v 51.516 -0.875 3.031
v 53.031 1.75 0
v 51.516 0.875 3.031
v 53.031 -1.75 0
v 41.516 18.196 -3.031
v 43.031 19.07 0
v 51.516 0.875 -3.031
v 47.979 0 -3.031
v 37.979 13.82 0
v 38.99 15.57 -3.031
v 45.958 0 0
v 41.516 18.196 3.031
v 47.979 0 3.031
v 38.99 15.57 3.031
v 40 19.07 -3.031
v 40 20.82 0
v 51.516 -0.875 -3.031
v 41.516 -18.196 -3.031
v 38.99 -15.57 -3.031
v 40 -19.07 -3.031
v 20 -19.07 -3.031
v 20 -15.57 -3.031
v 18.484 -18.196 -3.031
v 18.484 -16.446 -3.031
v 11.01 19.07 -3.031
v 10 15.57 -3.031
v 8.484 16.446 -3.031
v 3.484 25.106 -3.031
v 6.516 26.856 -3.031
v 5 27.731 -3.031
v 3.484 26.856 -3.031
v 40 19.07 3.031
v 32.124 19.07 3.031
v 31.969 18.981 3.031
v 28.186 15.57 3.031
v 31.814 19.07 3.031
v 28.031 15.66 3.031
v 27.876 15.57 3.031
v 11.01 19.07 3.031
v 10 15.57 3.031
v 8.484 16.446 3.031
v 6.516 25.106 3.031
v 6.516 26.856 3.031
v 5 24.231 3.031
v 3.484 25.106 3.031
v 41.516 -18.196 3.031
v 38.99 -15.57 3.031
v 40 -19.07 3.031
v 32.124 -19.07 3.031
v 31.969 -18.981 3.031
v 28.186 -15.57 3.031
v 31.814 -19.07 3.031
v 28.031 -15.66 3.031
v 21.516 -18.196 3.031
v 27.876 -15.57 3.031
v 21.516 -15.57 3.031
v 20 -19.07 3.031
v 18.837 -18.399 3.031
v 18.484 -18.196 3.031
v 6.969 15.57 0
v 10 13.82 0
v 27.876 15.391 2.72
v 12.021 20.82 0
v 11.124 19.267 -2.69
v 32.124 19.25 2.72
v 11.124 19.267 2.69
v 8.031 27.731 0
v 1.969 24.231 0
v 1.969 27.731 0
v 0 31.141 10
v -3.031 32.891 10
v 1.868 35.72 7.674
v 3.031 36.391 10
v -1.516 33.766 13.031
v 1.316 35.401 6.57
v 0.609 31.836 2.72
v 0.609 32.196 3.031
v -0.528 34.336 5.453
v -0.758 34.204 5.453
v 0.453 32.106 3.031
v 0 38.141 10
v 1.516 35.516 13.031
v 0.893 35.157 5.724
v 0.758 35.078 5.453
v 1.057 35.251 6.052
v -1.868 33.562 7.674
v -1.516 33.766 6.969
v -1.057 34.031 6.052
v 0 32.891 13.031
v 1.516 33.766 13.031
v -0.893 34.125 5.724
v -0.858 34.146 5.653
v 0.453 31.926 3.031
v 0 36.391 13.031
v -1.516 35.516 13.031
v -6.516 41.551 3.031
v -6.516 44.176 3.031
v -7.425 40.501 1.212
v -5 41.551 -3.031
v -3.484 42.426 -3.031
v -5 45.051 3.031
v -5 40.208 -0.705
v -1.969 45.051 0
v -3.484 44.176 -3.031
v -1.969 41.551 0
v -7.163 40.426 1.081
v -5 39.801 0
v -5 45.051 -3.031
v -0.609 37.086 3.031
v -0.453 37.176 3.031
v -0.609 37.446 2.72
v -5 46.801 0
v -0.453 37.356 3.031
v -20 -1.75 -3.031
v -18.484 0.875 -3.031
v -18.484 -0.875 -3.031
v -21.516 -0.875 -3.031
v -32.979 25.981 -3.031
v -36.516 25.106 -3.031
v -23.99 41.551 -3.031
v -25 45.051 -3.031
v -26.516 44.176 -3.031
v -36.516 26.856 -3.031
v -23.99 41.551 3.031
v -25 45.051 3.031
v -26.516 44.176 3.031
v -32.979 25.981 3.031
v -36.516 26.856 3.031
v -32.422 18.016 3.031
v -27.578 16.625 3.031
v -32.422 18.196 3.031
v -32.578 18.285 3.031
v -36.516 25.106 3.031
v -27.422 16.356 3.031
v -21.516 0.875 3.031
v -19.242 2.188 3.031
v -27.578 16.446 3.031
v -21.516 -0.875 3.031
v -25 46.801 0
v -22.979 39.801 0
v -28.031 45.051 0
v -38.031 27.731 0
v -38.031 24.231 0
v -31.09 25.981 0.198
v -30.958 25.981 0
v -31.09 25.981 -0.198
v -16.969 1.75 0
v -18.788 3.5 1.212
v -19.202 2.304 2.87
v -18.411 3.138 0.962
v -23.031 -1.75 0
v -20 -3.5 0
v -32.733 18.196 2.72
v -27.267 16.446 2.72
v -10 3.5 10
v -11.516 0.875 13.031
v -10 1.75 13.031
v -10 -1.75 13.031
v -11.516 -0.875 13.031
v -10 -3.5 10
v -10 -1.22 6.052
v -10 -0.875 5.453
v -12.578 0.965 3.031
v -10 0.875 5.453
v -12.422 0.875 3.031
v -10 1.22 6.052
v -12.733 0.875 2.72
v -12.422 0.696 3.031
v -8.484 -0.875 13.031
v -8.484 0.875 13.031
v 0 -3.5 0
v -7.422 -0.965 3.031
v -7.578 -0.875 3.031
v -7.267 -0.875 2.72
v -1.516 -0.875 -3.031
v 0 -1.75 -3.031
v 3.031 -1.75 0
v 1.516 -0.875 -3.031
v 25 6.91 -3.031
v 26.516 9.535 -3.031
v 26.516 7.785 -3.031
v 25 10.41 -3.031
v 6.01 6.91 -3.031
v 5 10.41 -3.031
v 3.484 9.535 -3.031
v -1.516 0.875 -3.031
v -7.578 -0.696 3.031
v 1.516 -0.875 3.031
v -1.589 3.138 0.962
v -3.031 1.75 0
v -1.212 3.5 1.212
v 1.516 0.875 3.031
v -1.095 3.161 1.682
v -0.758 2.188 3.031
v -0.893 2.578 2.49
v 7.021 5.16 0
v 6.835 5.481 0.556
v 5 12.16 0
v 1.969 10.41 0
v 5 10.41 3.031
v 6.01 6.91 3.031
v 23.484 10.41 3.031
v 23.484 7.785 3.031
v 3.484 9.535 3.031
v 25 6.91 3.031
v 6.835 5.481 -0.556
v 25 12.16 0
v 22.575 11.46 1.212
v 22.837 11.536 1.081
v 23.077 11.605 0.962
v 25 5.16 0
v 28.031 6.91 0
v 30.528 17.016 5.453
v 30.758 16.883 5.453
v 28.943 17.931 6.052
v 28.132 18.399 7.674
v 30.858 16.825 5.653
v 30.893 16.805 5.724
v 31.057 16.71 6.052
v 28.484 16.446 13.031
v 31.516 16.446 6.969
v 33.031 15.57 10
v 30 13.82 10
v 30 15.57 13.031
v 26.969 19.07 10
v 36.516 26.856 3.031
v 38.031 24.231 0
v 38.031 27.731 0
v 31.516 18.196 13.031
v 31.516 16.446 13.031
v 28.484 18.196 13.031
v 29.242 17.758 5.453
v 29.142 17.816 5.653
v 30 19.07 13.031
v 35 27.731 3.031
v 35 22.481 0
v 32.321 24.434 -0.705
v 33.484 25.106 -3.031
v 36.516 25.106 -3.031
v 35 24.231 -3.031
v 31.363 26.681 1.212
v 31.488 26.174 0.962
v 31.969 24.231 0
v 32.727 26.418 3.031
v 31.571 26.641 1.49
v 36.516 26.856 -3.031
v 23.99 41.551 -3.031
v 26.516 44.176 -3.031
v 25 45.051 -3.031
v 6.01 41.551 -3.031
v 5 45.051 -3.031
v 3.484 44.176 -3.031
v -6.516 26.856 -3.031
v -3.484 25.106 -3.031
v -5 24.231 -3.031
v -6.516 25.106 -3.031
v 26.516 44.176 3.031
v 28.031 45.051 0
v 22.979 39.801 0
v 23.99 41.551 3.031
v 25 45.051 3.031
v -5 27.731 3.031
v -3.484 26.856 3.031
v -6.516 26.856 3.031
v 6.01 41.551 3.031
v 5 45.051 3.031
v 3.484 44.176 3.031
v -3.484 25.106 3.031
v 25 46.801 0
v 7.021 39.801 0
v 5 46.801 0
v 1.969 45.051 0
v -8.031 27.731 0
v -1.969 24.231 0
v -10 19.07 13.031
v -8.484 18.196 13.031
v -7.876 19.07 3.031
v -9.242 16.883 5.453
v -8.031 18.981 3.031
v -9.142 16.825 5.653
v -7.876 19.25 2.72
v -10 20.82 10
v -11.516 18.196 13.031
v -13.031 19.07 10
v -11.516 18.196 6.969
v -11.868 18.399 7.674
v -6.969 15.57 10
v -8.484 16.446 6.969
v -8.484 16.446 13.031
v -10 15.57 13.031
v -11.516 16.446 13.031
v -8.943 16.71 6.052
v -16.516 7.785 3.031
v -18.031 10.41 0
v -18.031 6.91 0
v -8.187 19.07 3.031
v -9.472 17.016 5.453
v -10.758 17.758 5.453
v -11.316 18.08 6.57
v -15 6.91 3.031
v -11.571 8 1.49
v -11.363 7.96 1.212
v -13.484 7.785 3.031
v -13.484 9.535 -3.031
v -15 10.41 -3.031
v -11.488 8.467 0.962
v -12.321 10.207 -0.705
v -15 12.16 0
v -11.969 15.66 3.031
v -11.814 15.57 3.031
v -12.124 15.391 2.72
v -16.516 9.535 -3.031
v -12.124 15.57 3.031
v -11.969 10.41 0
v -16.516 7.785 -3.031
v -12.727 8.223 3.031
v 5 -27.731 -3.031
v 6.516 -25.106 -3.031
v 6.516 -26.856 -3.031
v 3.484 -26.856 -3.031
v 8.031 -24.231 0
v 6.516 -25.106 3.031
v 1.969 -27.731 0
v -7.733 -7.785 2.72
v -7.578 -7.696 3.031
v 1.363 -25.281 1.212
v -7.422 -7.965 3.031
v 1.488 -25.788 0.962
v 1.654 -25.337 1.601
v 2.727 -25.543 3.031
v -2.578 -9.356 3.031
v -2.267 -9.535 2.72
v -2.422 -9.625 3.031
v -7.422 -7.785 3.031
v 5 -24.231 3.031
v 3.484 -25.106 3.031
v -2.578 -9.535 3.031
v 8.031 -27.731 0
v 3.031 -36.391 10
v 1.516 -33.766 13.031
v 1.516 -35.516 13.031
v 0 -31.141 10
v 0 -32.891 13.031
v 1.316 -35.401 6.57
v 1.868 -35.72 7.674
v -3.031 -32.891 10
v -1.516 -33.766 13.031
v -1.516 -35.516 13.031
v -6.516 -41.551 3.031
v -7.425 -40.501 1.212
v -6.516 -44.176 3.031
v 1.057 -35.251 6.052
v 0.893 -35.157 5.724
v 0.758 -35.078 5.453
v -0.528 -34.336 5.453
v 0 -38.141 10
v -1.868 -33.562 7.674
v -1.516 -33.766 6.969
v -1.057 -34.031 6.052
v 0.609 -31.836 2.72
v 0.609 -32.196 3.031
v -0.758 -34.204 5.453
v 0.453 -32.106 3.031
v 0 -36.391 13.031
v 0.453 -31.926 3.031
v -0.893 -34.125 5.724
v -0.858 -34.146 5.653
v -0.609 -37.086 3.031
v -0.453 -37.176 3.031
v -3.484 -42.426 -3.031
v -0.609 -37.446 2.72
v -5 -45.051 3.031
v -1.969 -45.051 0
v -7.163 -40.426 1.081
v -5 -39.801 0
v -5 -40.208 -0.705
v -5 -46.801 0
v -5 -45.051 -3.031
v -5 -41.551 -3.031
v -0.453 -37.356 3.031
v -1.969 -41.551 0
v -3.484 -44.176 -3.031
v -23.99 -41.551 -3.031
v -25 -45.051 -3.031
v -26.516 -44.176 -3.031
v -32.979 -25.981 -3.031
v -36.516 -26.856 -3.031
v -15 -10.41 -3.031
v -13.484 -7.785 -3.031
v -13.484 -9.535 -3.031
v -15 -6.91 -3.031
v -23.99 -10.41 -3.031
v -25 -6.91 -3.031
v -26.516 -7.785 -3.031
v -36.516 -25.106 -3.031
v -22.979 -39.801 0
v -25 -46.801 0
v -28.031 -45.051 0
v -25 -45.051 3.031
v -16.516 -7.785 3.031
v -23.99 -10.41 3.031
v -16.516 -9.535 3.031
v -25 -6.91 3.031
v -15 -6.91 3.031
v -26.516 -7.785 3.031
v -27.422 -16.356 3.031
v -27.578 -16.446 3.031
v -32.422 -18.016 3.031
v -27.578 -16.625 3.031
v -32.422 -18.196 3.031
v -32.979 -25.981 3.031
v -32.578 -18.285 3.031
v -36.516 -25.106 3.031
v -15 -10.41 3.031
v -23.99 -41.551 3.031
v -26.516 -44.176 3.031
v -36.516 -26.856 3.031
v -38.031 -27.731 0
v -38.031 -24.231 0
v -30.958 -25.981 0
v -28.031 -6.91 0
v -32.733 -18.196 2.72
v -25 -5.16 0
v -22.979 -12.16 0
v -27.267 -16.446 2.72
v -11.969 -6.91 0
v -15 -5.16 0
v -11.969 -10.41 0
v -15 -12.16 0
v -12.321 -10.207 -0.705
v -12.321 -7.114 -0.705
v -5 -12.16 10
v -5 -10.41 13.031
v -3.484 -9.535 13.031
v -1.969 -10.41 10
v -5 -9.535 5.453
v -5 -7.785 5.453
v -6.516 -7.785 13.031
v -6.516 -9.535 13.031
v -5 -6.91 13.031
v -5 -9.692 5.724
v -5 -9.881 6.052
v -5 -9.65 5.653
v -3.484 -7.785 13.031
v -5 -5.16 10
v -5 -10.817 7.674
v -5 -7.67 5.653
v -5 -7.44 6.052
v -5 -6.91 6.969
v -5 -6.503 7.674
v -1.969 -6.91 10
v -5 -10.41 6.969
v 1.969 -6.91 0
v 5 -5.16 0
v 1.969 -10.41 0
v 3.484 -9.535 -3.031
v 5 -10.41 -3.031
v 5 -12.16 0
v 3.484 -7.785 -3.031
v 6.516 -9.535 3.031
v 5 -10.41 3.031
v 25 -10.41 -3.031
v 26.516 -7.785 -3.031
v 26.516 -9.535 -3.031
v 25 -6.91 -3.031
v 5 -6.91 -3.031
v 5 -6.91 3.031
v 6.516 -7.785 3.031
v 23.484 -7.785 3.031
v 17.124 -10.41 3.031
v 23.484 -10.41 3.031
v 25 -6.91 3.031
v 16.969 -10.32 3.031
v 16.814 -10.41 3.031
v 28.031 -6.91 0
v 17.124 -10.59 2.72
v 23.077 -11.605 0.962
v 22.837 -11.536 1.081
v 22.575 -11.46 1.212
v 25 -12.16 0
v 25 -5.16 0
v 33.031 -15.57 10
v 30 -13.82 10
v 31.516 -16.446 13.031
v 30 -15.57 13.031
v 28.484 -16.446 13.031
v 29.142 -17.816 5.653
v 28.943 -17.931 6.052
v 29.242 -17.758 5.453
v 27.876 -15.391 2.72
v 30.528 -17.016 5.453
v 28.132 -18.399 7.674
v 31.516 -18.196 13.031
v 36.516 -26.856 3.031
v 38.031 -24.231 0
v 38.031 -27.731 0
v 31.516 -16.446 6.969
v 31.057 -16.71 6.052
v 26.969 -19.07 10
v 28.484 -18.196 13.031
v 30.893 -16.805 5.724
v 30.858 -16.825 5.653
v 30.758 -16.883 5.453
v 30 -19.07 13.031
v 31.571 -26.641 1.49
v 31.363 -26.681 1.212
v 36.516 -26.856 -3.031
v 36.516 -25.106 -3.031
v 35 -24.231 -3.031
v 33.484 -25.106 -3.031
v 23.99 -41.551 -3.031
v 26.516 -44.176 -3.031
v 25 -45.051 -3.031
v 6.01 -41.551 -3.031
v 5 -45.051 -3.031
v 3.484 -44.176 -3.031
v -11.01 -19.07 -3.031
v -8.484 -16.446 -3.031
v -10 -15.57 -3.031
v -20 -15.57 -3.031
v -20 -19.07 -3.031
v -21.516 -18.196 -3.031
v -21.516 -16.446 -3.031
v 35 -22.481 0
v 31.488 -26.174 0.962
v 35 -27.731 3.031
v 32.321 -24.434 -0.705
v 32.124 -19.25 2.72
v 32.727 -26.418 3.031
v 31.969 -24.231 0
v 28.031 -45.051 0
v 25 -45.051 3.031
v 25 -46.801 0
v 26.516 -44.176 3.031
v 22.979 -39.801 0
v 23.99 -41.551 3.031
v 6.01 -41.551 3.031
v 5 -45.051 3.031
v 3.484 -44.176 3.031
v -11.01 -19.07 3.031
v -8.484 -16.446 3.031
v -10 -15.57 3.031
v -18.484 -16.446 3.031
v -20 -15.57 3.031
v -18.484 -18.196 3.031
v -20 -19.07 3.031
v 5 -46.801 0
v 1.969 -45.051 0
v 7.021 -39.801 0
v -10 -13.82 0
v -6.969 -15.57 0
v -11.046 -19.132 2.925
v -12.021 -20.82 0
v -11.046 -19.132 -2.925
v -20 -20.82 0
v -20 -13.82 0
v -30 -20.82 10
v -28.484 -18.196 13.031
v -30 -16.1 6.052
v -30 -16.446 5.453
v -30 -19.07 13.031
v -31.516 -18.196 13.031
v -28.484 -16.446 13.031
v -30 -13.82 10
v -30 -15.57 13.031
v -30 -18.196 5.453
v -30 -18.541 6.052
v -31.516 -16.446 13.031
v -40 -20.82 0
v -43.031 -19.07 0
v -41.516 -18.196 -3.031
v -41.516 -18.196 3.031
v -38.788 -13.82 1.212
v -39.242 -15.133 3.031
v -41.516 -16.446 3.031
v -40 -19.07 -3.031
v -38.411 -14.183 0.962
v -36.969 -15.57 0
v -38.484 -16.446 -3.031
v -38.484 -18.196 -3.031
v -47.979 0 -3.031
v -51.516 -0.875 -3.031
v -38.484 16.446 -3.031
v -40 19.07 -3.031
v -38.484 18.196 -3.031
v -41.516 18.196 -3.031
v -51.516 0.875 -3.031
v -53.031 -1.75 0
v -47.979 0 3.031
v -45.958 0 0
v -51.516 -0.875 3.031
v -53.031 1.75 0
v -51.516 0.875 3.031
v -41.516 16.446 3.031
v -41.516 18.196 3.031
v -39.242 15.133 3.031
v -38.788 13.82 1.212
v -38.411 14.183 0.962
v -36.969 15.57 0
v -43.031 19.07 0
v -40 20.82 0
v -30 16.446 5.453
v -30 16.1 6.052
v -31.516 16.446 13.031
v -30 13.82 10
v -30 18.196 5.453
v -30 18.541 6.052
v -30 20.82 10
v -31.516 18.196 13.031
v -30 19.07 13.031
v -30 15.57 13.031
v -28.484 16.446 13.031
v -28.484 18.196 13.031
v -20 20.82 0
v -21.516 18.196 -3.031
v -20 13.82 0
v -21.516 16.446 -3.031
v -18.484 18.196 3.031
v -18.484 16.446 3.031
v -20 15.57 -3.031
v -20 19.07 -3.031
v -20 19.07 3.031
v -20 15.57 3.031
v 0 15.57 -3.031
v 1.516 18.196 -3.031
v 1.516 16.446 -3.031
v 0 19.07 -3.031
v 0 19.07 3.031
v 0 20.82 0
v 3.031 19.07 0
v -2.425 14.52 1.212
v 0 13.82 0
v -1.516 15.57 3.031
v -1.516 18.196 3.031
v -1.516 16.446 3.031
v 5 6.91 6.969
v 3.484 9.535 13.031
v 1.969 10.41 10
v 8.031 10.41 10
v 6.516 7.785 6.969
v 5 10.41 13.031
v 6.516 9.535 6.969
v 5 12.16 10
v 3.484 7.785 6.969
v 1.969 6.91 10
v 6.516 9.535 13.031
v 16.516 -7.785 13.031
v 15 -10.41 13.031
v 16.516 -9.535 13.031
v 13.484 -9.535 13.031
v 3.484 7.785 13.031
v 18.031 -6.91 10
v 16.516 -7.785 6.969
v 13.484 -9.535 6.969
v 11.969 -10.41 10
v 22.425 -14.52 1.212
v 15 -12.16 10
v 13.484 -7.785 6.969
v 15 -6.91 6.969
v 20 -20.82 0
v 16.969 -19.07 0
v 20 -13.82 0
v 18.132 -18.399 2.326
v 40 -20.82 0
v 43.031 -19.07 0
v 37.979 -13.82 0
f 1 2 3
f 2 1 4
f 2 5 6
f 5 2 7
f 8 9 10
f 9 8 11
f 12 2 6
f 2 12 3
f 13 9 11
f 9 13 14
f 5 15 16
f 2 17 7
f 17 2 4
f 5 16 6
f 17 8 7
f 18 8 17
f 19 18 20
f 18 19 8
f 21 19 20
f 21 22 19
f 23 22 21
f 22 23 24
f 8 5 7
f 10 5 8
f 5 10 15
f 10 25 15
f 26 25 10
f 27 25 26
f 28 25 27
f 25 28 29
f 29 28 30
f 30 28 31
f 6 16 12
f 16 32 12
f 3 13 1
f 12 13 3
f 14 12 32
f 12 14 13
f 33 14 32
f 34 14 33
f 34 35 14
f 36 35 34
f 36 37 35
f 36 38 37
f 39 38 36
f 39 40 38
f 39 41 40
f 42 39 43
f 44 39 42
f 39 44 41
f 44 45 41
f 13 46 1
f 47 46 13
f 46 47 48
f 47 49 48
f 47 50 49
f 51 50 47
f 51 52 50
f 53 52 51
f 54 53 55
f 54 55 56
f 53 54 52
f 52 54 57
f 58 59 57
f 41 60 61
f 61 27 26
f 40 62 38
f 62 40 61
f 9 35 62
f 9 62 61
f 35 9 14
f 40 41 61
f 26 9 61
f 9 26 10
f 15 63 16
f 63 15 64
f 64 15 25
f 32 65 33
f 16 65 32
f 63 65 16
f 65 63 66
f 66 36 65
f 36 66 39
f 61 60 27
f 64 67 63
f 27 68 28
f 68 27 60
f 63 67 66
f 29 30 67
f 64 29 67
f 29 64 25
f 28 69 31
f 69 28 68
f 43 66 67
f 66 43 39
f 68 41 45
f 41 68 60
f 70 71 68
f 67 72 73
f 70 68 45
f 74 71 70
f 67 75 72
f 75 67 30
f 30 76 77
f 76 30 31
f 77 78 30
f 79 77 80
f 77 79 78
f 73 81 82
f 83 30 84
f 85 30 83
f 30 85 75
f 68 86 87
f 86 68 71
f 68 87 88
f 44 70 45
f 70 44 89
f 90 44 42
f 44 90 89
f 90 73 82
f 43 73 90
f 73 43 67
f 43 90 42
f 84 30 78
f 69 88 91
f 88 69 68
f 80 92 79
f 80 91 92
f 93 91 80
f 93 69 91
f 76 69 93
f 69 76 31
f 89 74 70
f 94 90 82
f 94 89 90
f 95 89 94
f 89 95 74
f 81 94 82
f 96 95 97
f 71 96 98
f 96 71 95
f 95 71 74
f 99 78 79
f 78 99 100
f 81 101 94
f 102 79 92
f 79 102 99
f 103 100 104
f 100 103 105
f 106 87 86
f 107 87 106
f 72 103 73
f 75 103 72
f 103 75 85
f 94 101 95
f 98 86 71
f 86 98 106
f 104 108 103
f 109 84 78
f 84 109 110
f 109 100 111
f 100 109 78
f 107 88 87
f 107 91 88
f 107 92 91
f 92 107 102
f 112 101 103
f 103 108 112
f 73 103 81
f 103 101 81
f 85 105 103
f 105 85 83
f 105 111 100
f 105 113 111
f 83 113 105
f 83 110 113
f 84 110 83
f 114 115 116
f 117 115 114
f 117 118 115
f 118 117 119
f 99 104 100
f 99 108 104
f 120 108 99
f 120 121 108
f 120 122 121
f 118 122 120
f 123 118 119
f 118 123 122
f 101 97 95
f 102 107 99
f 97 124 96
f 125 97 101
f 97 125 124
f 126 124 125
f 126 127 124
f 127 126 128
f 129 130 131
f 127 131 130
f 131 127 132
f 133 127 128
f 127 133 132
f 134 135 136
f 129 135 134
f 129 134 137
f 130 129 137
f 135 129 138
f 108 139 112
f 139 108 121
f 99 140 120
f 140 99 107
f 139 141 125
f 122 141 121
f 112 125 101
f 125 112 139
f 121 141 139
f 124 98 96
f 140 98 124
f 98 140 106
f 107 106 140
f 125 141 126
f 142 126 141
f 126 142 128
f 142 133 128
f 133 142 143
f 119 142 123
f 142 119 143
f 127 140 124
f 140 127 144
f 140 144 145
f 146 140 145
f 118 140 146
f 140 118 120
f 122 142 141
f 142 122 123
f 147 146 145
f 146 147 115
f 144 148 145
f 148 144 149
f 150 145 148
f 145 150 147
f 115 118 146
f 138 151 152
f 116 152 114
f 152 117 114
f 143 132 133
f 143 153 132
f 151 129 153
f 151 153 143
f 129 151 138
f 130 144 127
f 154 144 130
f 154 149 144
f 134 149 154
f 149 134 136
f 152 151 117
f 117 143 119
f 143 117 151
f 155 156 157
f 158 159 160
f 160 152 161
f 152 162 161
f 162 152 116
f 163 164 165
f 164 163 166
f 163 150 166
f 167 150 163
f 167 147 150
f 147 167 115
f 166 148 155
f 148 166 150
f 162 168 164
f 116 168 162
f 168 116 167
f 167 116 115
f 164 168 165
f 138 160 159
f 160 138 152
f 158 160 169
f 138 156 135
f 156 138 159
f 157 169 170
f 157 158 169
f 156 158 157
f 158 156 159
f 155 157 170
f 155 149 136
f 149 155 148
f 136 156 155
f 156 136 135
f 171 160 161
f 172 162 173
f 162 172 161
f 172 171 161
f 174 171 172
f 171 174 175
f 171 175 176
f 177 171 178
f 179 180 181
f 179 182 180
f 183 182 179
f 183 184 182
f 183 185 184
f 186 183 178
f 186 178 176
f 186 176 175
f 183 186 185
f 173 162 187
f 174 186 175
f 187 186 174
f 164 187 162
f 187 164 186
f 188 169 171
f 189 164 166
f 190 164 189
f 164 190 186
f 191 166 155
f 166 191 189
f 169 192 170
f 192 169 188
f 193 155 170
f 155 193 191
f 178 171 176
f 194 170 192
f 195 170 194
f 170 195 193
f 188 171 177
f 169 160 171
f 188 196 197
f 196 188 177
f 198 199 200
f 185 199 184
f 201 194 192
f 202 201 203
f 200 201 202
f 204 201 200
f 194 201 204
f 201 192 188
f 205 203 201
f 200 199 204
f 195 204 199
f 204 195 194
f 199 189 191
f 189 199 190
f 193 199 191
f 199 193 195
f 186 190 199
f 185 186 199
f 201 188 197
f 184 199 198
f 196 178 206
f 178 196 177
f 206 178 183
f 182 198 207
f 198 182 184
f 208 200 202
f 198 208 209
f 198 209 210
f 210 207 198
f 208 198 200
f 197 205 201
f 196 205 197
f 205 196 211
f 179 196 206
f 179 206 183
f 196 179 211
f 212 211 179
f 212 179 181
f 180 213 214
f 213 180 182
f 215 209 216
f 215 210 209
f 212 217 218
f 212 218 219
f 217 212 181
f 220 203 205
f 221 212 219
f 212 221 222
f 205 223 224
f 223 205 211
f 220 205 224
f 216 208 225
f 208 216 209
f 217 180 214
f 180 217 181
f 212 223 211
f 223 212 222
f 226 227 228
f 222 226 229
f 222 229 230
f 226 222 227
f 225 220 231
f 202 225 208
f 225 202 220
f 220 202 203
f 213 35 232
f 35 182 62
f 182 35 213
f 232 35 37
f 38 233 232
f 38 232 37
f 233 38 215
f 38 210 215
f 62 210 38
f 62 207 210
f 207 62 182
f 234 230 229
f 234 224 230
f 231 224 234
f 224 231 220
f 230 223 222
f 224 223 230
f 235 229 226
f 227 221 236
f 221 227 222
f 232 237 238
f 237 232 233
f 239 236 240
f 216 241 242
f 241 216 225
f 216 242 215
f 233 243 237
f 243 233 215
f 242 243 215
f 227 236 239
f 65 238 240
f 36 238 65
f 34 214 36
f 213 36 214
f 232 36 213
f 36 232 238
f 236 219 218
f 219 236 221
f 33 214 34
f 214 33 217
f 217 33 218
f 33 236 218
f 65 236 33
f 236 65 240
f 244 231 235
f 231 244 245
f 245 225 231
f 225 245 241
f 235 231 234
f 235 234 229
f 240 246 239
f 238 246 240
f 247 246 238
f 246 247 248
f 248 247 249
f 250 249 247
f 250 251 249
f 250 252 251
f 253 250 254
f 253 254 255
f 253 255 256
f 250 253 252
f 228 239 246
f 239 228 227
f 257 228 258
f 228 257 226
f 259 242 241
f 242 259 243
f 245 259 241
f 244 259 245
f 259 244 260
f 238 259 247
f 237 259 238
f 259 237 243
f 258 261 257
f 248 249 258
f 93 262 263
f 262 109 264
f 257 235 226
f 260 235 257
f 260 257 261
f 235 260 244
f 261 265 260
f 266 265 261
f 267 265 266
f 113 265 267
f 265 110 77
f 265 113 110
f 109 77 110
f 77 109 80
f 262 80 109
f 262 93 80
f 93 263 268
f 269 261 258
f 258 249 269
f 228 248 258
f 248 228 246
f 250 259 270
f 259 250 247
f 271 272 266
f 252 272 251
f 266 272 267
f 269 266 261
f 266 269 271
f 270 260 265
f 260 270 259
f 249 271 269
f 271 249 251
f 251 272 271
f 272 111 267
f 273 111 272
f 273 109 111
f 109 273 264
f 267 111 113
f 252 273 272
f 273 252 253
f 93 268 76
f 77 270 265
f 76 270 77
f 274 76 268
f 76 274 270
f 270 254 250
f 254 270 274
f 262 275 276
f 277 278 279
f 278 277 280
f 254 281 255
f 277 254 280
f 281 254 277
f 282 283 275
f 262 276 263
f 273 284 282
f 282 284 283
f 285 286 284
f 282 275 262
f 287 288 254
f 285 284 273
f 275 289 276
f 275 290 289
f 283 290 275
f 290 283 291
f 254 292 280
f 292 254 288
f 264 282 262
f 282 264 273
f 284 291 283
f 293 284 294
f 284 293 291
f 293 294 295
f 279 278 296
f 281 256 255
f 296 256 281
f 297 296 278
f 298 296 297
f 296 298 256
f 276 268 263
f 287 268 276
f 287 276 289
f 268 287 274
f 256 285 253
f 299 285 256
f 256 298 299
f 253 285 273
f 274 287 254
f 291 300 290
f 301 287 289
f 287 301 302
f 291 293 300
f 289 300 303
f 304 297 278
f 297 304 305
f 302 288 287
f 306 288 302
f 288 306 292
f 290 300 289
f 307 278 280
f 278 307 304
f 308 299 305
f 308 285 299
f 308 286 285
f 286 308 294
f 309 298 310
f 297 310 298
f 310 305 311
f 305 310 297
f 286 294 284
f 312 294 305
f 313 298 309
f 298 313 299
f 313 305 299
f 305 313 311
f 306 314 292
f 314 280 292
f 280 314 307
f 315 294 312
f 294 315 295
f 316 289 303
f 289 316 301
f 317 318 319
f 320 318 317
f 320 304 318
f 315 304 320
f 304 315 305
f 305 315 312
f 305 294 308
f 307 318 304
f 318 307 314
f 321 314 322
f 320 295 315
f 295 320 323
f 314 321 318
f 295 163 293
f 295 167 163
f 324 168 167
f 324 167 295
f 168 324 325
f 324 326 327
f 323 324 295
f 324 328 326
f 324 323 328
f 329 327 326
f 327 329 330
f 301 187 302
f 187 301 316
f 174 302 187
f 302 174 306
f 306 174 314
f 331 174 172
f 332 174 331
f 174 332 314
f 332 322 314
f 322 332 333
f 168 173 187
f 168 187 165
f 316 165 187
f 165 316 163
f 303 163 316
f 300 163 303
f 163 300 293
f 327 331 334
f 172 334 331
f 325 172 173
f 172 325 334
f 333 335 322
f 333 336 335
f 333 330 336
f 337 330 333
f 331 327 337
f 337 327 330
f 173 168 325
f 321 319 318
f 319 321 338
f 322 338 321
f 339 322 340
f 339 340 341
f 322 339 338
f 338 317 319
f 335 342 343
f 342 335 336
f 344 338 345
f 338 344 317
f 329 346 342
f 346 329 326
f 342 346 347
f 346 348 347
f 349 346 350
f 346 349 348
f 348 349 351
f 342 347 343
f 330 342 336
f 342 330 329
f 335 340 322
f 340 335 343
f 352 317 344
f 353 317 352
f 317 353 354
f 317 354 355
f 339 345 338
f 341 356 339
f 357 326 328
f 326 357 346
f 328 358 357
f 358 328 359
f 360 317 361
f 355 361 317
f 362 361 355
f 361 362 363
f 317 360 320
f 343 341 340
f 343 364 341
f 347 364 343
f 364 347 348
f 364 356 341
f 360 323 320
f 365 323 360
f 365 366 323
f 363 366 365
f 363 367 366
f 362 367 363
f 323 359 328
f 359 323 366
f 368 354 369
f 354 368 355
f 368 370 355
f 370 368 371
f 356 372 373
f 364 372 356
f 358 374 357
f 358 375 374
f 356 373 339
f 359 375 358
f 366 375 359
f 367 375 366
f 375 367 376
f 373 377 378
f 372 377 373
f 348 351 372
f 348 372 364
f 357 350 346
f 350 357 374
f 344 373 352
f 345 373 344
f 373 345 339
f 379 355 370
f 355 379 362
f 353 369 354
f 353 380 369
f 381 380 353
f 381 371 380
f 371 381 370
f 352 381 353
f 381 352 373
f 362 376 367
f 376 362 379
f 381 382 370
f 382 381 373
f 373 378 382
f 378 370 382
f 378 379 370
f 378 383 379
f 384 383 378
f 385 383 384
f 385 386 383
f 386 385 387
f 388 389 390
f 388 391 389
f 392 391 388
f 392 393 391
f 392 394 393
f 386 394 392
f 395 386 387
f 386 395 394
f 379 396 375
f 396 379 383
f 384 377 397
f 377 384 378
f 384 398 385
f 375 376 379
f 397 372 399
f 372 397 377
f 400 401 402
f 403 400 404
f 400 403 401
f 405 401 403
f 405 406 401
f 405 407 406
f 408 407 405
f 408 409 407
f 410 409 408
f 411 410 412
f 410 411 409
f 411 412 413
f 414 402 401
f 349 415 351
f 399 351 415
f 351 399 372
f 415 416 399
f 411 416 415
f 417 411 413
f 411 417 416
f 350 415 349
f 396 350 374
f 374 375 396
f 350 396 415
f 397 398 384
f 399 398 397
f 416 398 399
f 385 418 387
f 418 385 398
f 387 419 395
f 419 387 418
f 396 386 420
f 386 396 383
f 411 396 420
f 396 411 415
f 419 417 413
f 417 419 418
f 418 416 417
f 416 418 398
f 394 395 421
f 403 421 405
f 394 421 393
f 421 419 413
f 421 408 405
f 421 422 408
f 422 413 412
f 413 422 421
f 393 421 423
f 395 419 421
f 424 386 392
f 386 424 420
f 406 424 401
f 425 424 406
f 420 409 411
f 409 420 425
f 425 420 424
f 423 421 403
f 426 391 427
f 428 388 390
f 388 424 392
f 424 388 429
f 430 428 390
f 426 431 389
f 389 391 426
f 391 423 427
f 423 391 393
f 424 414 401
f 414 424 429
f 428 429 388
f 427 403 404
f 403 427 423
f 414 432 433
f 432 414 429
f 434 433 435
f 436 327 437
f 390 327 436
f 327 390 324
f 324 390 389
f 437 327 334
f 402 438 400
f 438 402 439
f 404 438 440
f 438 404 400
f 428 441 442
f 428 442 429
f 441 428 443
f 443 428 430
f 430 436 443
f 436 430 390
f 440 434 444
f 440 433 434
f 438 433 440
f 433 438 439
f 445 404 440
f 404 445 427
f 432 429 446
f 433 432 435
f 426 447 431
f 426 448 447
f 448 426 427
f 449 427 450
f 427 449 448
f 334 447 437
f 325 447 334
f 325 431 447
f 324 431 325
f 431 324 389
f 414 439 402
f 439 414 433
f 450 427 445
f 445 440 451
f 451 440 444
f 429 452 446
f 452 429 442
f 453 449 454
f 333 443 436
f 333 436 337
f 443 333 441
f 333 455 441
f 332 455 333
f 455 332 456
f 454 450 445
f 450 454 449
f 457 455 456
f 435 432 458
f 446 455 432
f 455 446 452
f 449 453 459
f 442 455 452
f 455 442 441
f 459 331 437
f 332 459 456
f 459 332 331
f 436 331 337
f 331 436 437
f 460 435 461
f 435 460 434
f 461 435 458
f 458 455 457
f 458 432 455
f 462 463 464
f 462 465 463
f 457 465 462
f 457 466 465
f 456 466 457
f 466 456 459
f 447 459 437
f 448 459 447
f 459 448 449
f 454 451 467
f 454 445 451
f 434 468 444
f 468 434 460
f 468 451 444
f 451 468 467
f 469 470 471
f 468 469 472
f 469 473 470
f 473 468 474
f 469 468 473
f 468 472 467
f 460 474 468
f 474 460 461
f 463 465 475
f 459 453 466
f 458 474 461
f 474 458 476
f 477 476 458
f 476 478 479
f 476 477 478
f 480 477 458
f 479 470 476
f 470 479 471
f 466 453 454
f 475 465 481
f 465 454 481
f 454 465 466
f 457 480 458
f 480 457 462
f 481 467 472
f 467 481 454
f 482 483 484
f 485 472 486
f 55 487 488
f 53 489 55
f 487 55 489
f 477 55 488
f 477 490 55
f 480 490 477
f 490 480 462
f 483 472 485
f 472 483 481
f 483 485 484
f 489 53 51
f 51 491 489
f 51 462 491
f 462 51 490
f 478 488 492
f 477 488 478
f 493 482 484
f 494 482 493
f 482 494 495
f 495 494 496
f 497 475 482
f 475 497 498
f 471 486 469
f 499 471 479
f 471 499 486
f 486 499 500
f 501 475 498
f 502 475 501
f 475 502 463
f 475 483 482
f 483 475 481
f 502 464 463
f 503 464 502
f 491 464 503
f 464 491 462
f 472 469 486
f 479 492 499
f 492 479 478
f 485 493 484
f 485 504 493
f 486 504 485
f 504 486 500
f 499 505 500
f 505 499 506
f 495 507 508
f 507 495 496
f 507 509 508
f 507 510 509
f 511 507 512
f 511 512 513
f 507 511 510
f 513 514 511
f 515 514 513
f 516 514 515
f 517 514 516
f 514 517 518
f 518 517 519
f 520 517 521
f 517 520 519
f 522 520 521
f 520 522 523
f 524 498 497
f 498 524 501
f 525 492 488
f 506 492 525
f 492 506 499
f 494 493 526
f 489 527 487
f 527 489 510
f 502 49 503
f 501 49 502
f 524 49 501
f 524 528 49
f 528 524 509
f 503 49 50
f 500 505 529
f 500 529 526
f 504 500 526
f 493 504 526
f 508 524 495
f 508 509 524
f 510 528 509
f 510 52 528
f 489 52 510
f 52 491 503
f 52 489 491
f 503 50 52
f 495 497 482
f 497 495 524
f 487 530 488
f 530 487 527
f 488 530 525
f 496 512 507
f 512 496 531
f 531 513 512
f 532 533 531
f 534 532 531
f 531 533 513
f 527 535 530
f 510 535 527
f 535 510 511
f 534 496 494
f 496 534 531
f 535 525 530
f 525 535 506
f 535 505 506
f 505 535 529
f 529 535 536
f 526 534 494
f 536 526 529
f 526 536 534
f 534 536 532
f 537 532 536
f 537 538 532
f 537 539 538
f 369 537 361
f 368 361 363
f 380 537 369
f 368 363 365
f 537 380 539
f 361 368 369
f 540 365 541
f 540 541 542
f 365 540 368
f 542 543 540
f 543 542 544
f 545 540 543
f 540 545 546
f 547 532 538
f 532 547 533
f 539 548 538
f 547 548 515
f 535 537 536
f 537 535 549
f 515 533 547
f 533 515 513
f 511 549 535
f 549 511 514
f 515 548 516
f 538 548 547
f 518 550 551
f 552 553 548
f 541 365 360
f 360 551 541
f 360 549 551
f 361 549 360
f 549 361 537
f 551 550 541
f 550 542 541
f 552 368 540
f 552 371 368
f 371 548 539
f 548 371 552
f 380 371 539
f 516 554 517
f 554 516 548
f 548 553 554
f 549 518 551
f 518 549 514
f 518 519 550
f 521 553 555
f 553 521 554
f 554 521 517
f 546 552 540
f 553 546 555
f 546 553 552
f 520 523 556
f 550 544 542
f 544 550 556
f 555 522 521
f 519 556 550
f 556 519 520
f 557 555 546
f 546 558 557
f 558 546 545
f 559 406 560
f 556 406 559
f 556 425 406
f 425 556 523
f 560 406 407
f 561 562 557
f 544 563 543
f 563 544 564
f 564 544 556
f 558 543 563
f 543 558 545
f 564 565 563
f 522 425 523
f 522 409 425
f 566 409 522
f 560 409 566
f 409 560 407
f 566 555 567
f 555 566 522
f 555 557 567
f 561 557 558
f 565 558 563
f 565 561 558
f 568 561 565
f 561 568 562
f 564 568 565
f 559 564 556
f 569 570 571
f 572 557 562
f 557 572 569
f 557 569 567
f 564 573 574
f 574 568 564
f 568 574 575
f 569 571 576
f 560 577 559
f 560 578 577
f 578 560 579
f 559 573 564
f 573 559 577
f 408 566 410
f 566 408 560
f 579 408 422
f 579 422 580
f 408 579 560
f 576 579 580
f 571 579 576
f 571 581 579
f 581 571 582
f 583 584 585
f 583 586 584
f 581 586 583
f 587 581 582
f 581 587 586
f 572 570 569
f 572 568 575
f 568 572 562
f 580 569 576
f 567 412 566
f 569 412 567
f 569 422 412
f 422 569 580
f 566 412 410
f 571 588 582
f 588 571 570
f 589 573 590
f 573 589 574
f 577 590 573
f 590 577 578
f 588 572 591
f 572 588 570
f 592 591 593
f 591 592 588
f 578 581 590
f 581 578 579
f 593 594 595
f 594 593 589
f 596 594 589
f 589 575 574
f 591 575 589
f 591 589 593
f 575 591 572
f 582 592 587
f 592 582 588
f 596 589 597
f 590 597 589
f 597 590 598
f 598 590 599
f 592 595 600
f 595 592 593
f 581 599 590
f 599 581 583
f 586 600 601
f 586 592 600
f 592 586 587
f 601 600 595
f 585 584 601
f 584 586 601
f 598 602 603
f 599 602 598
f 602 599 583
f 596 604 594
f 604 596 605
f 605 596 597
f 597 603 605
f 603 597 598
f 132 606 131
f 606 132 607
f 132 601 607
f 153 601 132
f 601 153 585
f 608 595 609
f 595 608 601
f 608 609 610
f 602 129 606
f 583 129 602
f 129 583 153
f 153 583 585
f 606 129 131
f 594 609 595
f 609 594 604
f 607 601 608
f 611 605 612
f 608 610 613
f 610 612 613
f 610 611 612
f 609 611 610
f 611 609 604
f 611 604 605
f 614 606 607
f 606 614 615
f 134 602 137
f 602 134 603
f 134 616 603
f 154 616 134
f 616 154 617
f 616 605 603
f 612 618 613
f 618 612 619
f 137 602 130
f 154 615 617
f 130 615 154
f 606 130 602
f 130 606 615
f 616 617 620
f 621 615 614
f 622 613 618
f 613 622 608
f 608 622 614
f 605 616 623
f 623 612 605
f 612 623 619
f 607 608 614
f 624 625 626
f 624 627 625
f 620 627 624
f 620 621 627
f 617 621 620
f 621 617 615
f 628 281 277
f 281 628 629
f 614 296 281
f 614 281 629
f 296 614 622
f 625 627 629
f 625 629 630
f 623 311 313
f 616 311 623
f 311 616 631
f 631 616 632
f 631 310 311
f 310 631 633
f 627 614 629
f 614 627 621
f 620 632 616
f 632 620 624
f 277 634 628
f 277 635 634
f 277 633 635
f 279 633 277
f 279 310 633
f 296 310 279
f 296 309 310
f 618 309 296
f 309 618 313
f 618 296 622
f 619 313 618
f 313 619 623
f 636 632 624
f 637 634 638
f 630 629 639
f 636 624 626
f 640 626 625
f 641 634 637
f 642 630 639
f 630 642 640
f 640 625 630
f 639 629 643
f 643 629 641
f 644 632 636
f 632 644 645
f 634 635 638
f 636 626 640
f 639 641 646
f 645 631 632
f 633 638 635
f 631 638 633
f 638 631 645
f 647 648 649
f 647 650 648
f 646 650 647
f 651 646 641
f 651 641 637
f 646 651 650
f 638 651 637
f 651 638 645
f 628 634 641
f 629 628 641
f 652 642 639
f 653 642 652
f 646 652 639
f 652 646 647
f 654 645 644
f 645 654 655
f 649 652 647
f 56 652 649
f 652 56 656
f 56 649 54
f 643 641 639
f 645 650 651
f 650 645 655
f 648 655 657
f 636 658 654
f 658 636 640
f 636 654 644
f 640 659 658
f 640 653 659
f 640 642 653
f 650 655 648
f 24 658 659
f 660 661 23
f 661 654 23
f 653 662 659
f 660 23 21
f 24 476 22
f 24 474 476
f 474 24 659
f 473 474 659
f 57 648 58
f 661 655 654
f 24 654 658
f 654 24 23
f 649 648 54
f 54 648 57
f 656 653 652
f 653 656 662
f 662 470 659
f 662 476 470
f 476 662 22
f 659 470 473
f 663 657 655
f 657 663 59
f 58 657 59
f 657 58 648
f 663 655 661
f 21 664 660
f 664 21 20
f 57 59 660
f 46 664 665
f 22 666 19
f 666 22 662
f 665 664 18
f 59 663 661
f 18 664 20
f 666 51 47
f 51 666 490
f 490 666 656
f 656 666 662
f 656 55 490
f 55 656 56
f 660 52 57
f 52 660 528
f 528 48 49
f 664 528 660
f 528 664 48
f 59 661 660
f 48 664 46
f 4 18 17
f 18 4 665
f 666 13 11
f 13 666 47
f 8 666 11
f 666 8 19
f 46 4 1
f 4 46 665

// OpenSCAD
scale(v = 10) {
	union() {
		hull() {
			translate(v = [5.0000000000, 0.0, 0]) {
				rotate(a = [0, 0, 30]) {
					sphere($fn = 6, r = 0.3500000000);
				}
			}
			translate(v = [4.0000000000, 1.7320508075688772, 0]) {
				rotate(a = [0, 0, 30]) {
					sphere($fn = 6, r = 0.3500000000);
				}
			}
		}
		hull() {
			translate(v = [4.0000000000, 1.7320508075688772, 0]) {
				rotate(a = [0, 0, 30]) {
					sphere($fn = 6, r = 0.3500000000);
				}
			}
			translate(v = [1.0000000000, 1.7320508075688772, 0]) {
				rotate(a = [0, 0, 30]) {
					sphere($fn = 6, r = 0.3500000000);
				}
			}
		}
		hull() {
			translate(v = [1.0000000000, 1.7320508075688772, 0]) {
				rotate(a = [0, 0, 30]) {
					sphere($fn = 6, r = 0.3500000000);
				}
			}
			translate(v = [0.5000000000, 2.598076211353316, 0]) {
				rotate(a = [0, 0, 30]) {
					sphere($fn = 6, r = 0.3500000000);
				}
			}
		}
		hull() {
			translate(v = [0.5000000000, 2.598076211353316, 0]) {
				rotate(a = [0, 0, 30]) {
					sphere($fn = 6, r = 0.3500000000);
				}
			}
			translate(v = [0.0000000000, 3.4641016151377544, 1]) {
				rotate(a = [0, 0, 30]) {
					sphere($fn = 6, r = 0.3500000000);
				}
			}
		}
		hull() {
			translate(v = [0.0000000000, 3.4641016151377544, 1]) {
				rotate(a = [0, 0, 30]) {
					sphere($fn = 6, r = 0.3500000000);
				}
			}
			translate(v = [-0.5000000000, 4.330127018922193, 0]) {
				rotate(a = [0, 0, 30]) {
					sphere($fn = 6, r = 0.3500000000);
				}
			}
		}
		hull() {
			translate(v = [-0.5000000000, 4.330127018922193, 0]) {
				rotate(a = [0, 0, 30]) {
					sphere($fn = 6, r = 0.3500000000);
				}
			}
			translate(v = [-2.5000000000, 4.330127018922193, 0]) {
				rotate(a = [0, 0, 30]) {
					sphere($fn = 6, r = 0.3500000000);
				}
			}
		}
		hull() {
			translate(v = [-2.5000000000, 4.330127018922193, 0]) {
				rotate(a = [0, 0, 30]) {
					sphere($fn = 6, r = 0.3500000000);
				}
			}
			translate(v = [-3.5000000000, 2.598076211353316, 0]) {
				rotate(a = [0, 0, 30]) {
					sphere($fn = 6, r = 0.3500000000);
				}
			}
		}
		hull() {
			translate(v = [-3.5000000000, 2.598076211353316, 0]) {
				rotate(a = [0, 0, 30]) {
					sphere($fn = 6, r = 0.3500000000);
				}
			}
			translate(v = [-2.0000000000, 0.0, 0]) {
				rotate(a = [0, 0, 30]) {
					sphere($fn = 6, r = 0.3500000000);
				}
			}
		}
		hull() {
			translate(v = [-2.0000000000, 0.0, 0]) {
				rotate(a = [0, 0, 30]) {
					sphere($fn = 6, r = 0.3500000000);
				}
			}
			translate(v = [-1.0000000000, 0.0, 1]) {
				rotate(a = [0, 0, 30]) {
					sphere($fn = 6, r = 0.3500000000);
				}
			}
		}
		hull() {
			translate(v = [-1.0000000000, 0.0, 1]) {
				rotate(a = [0, 0, 30]) {
					sphere($fn = 6, r = 0.3500000000);
				}
			}
			translate(v = [0.0000000000, 0.0, 0]) {
				rotate(a = [0, 0, 30]) {
					sphere($fn = 6, r = 0.3500000000);
				}
			}
		}
		hull() {
			translate(v = [0.0000000000, 0.0, 0]) {
				rotate(a = [0, 0, 30]) {
					sphere($fn = 6, r = 0.3500000000);
				}
			}
			translate(v = [0.5000000000, 0.8660254037844386, 0]) {
				rotate(a = [0, 0, 30]) {
					sphere($fn = 6, r = 0.3500000000);
				}
			}
		}
		hull() {
			translate(v = [0.5000000000, 0.8660254037844386, 0]) {
				rotate(a = [0, 0, 30]) {
					sphere($fn = 6, r = 0.3500000000);
				}
			}
			translate(v = [2.5000000000, 0.8660254037844386, 0]) {
				rotate(a = [0, 0, 30]) {
					sphere($fn = 6, r = 0.3500000000);
				}
			}
		}
		hull() {
			translate(v = [2.5000000000, 0.8660254037844386, 0]) {
				rotate(a = [0, 0, 30]) {
					sphere($fn = 6, r = 0.3500000000);
				}
			}
			translate(v = [3.0000000000, 1.7320508075688772, 1]) {
				rotate(a = [0, 0, 30]) {
					sphere($fn = 6, r = 0.3500000000);
				}
			}
		}
		hull() {
			translate(v = [3.0000000000, 1.7320508075688772, 1]) {
				rotate(a = [0, 0, 30]) {
					sphere($fn = 6, r = 0.3500000000);
				}
			}
			translate(v = [3.5000000000, 2.598076211353316, 0]) {
				rotate(a = [0, 0, 30]) {
					sphere($fn = 6, r = 0.3500000000);
				}
			}
		}
		hull() {
			translate(v = [3.5000000000, 2.598076211353316, 0]) {
				rotate(a = [0, 0, 30]) {
					sphere($fn = 6, r = 0.3500000000);
				}
			}
			translate(v = [2.5000000000, 4.330127018922193, 0]) {
				rotate(a = [0, 0, 30]) {
					sphere($fn = 6, r = 0.3500000000);
				}
			}
		}
		hull() {
			translate(v = [2.5000000000, 4.330127018922193, 0]) {
				rotate(a = [0, 0, 30]) {
					sphere($fn = 6, r = 0.3500000000);
				}
			}
			translate(v = [0.5000000000, 4.330127018922193, 0]) {
				rotate(a = [0, 0, 30]) {
					sphere($fn = 6, r = 0.3500000000);
				}
			}
		}
		hull() {
			translate(v = [0.5000000000, 4.330127018922193, 0]) {
				rotate(a = [0, 0, 30]) {
					sphere($fn = 6, r = 0.3500000000);
				}
			}
			translate(v = [-0.5000000000, 2.598076211353316, 0]) {
				rotate(a = [0, 0, 30]) {
					sphere($fn = 6, r = 0.3500000000);
				}
			}
		}
		hull() {
			translate(v = [-0.5000000000, 2.598076211353316, 0]) {
				rotate(a = [0, 0, 30]) {
					sphere($fn = 6, r = 0.3500000000);
				}
			}
			translate(v = [-1.0000000000, 1.7320508075688772, 1]) {
				rotate(a = [0, 0, 30]) {
					sphere($fn = 6, r = 0.3500000000);
				}
			}
		}
		hull() {
			translate(v = [-1.0000000000, 1.7320508075688772, 1]) {
				rotate(a = [0, 0, 30]) {
					sphere($fn = 6, r = 0.3500000000);
				}
			}
			translate(v = [-1.5000000000, 0.8660254037844386, 0]) {
				rotate(a = [0, 0, 30]) {
					sphere($fn = 6, r = 0.3500000000);
				}
			}
		}
		hull() {
			translate(v = [-1.5000000000, 0.8660254037844386, 0]) {
				rotate(a = [0, 0, 30]) {
					sphere($fn = 6, r = 0.3500000000);
				}
			}
			translate(v = [0.5000000000, -2.598076211353316, 0]) {
				rotate(a = [0, 0, 30]) {
					sphere($fn = 6, r = 0.3500000000);
				}
			}
		}
		hull() {
			translate(v = [0.5000000000, -2.598076211353316, 0]) {
				rotate(a = [0, 0, 30]) {
					sphere($fn = 6, r = 0.3500000000);
				}
			}
			translate(v = [0.0000000000, -3.4641016151377544, 1]) {
				rotate(a = [0, 0, 30]) {
					sphere($fn = 6, r = 0.3500000000);
				}
			}
		}
		hull() {
			translate(v = [0.0000000000, -3.4641016151377544, 1]) {
				rotate(a = [0, 0, 30]) {
					sphere($fn = 6, r = 0.3500000000);
				}
			}
			translate(v = [-0.5000000000, -4.330127018922193, 0]) {
				rotate(a = [0, 0, 30]) {
					sphere($fn = 6, r = 0.3500000000);
				}
			}
		}
		hull() {
			translate(v = [-0.5000000000, -4.330127018922193, 0]) {
				rotate(a = [0, 0, 30]) {
					sphere($fn = 6, r = 0.3500000000);
				}
			}
			translate(v = [-2.5000000000, -4.330127018922193, 0]) {
				rotate(a = [0, 0, 30]) {
					sphere($fn = 6, r = 0.3500000000);
				}
			}
		}
		hull() {
			translate(v = [-2.5000000000, -4.330127018922193, 0]) {
				rotate(a = [0, 0, 30]) {
					sphere($fn = 6, r = 0.3500000000);
				}
			}
			translate(v = [-3.5000000000, -2.598076211353316, 0]) {
				rotate(a = [0, 0, 30]) {
					sphere($fn = 6, r = 0.3500000000);
				}
			}
		}
		hull() {
			translate(v = [-3.5000000000, -2.598076211353316, 0]) {
				rotate(a = [0, 0, 30]) {
					sphere($fn = 6, r = 0.3500000000);
				}
			}
			translate(v = [-2.5000000000, -0.8660254037844386, 0]) {
				rotate(a = [0, 0, 30]) {
					sphere($fn = 6, r = 0.3500000000);
				}
			}
		}
		hull() {
			translate(v = [-2.5000000000, -0.8660254037844386, 0]) {
				rotate(a = [0, 0, 30]) {
					sphere($fn = 6, r = 0.3500000000);
				}
			}
			translate(v = [-1.5000000000, -0.8660254037844386, 0]) {
				rotate(a = [0, 0, 30]) {
					sphere($fn = 6, r = 0.3500000000);
				}
			}
		}
		hull() {
			translate(v = [-1.5000000000, -0.8660254037844386, 0]) {
				rotate(a = [0, 0, 30]) {
					sphere($fn = 6, r = 0.3500000000);
				}
			}
			translate(v = [-0.5000000000, -0.8660254037844386, 1]) {
				rotate(a = [0, 0, 30]) {
					sphere($fn = 6, r = 0.3500000000);
				}
			}
		}
		hull() {
			translate(v = [-0.5000000000, -0.8660254037844386, 1]) {
				rotate(a = [0, 0, 30]) {
					sphere($fn = 6, r = 0.3500000000);
				}
			}
			translate(v = [0.5000000000, -0.8660254037844386, 0]) {
				rotate(a = [0, 0, 30]) {
					sphere($fn = 6, r = 0.3500000000);
				}
			}
		}
		hull() {
			translate(v = [0.5000000000, -0.8660254037844386, 0]) {
				rotate(a = [0, 0, 30]) {
					sphere($fn = 6, r = 0.3500000000);
				}
			}
			translate(v = [2.5000000000, -0.8660254037844386, 0]) {
				rotate(a = [0, 0, 30]) {
					sphere($fn = 6, r = 0.3500000000);
				}
			}
		}
		hull() {
			translate(v = [2.5000000000, -0.8660254037844386, 0]) {
				rotate(a = [0, 0, 30]) {
					sphere($fn = 6, r = 0.3500000000);
				}
			}
			translate(v = [3.0000000000, -1.7320508075688772, 1]) {
				rotate(a = [0, 0, 30]) {
					sphere($fn = 6, r = 0.3500000000);
				}
			}
		}
		hull() {
			translate(v = [3.0000000000, -1.7320508075688772, 1]) {
				rotate(a = [0, 0, 30]) {
					sphere($fn = 6, r = 0.3500000000);
				}
			}
			translate(v = [3.5000000000, -2.598076211353316, 0]) {
				rotate(a = [0, 0, 30]) {
					sphere($fn = 6, r = 0.3500000000);
				}
			}
		}
		hull() {
			translate(v = [3.5000000000, -2.598076211353316, 0]) {
				rotate(a = [0, 0, 30]) {
					sphere($fn = 6, r = 0.3500000000);
				}
			}
			translate(v = [2.5000000000, -4.330127018922193, 0]) {
				rotate(a = [0, 0, 30]) {
					sphere($fn = 6, r = 0.3500000000);
				}
			}
		}
		hull() {
			translate(v = [2.5000000000, -4.330127018922193, 0]) {
				rotate(a = [0, 0, 30]) {
					sphere($fn = 6, r = 0.3500000000);
				}
			}
			translate(v = [0.5000000000, -4.330127018922193, 0]) {
				rotate(a = [0, 0, 30]) {
					sphere($fn = 6, r = 0.3500000000);
				}
			}
		}
		hull() {
			translate(v = [0.5000000000, -4.330127018922193, 0]) {
				rotate(a = [0, 0, 30]) {
					sphere($fn = 6, r = 0.3500000000);
				}
			}
			translate(v = [-1.0000000000, -1.7320508075688772, 0]) {
				rotate(a = [0, 0, 30]) {
					sphere($fn = 6, r = 0.3500000000);
				}
			}
		}
		hull() {
			translate(v = [-1.0000000000, -1.7320508075688772, 0]) {
				rotate(a = [0, 0, 30]) {
					sphere($fn = 6, r = 0.3500000000);
				}
			}
			translate(v = [-2.0000000000, -1.7320508075688772, 0]) {
				rotate(a = [0, 0, 30]) {
					sphere($fn = 6, r = 0.3500000000);
				}
			}
		}
		hull() {
			translate(v = [-2.0000000000, -1.7320508075688772, 0]) {
				rotate(a = [0, 0, 30]) {
					sphere($fn = 6, r = 0.3500000000);
				}
			}
			translate(v = [-3.0000000000, -1.7320508075688772, 1]) {
				rotate(a = [0, 0, 30]) {
					sphere($fn = 6, r = 0.3500000000);
				}
			}
		}
		hull() {
			translate(v = [-3.0000000000, -1.7320508075688772, 1]) {
				rotate(a = [0, 0, 30]) {
					sphere($fn = 6, r = 0.3500000000);
				}
			}
			translate(v = [-4.0000000000, -1.7320508075688772, 0]) {
				rotate(a = [0, 0, 30]) {
					sphere($fn = 6, r = 0.3500000000);
				}
			}
		}
		hull() {
			translate(v = [-4.0000000000, -1.7320508075688772, 0]) {
				rotate(a = [0, 0, 30]) {
					sphere($fn = 6, r = 0.3500000000);
				}
			}
			translate(v = [-5.0000000000, 0.0, 0]) {
				rotate(a = [0, 0, 30]) {
					sphere($fn = 6, r = 0.3500000000);
				}
			}
		}
		hull() {
			translate(v = [-5.0000000000, 0.0, 0]) {
				rotate(a = [0, 0, 30]) {
					sphere($fn = 6, r = 0.3500000000);
				}
			}
			translate(v = [-4.0000000000, 1.7320508075688772, 0]) {
				rotate(a = [0, 0, 30]) {
					sphere($fn = 6, r = 0.3500000000);
				}
			}
		}
		hull() {
			translate(v = [-4.0000000000, 1.7320508075688772, 0]) {
				rotate(a = [0, 0, 30]) {
					sphere($fn = 6, r = 0.3500000000);
				}
			}
			translate(v = [-3.0000000000, 1.7320508075688772, 1]) {
				rotate(a = [0, 0, 30]) {
					sphere($fn = 6, r = 0.3500000000);
				}
			}
		}
		hull() {
			translate(v = [-3.0000000000, 1.7320508075688772, 1]) {
				rotate(a = [0, 0, 30]) {
					sphere($fn = 6, r = 0.3500000000);
				}
			}
			translate(v = [-2.0000000000, 1.7320508075688772, 0]) {
				rotate(a = [0, 0, 30]) {
					sphere($fn = 6, r = 0.3500000000);
				}
			}
		}
		hull() {
			translate(v = [-2.0000000000, 1.7320508075688772, 0]) {
				rotate(a = [0, 0, 30]) {
					sphere($fn = 6, r = 0.3500000000);
				}
			}
			translate(v = [0.0000000000, 1.7320508075688772, 0]) {
				rotate(a = [0, 0, 30]) {
					sphere($fn = 6, r = 0.3500000000);
				}
			}
		}
		hull() {
			translate(v = [0.0000000000, 1.7320508075688772, 0]) {
				rotate(a = [0, 0, 30]) {
					sphere($fn = 6, r = 0.3500000000);
				}
			}
			translate(v = [0.5000000000, 0.8660254037844386, 1]) {
				rotate(a = [0, 0, 30]) {
					sphere($fn = 6, r = 0.3500000000);
				}
			}
		}
		hull() {
			translate(v = [0.5000000000, 0.8660254037844386, 1]) {
				rotate(a = [0, 0, 30]) {
					sphere($fn = 6, r = 0.3500000000);
				}
			}
			translate(v = [1.5000000000, -0.8660254037844386, 1]) {
				rotate(a = [0, 0, 30]) {
					sphere($fn = 6, r = 0.3500000000);
				}
			}
		}
		hull() {
			translate(v = [1.5000000000, -0.8660254037844386, 1]) {
				rotate(a = [0, 0, 30]) {
					sphere($fn = 6, r = 0.3500000000);
				}
			}
			translate(v = [2.0000000000, -1.7320508075688772, 0]) {
				rotate(a = [0, 0, 30]) {
					sphere($fn = 6, r = 0.3500000000);
				}
			}
		}
		hull() {
			translate(v = [2.0000000000, -1.7320508075688772, 0]) {
				rotate(a = [0, 0, 30]) {
					sphere($fn = 6, r = 0.3500000000);
				}
			}
			translate(v = [4.0000000000, -1.7320508075688772, 0]) {
				rotate(a = [0, 0, 30]) {
					sphere($fn = 6, r = 0.3500000000);
				}
			}
		}
		hull() {
			translate(v = [4.0000000000, -1.7320508075688772, 0]) {
				rotate(a = [0, 0, 30]) {
					sphere($fn = 6, r = 0.3500000000);
				}
			}
			translate(v = [5.0000000000, 0.0, 0]) {
				rotate(a = [0, 0, 30]) {
					sphere($fn = 6, r = 0.3500000000);
				}
			}
		}
	}
}
